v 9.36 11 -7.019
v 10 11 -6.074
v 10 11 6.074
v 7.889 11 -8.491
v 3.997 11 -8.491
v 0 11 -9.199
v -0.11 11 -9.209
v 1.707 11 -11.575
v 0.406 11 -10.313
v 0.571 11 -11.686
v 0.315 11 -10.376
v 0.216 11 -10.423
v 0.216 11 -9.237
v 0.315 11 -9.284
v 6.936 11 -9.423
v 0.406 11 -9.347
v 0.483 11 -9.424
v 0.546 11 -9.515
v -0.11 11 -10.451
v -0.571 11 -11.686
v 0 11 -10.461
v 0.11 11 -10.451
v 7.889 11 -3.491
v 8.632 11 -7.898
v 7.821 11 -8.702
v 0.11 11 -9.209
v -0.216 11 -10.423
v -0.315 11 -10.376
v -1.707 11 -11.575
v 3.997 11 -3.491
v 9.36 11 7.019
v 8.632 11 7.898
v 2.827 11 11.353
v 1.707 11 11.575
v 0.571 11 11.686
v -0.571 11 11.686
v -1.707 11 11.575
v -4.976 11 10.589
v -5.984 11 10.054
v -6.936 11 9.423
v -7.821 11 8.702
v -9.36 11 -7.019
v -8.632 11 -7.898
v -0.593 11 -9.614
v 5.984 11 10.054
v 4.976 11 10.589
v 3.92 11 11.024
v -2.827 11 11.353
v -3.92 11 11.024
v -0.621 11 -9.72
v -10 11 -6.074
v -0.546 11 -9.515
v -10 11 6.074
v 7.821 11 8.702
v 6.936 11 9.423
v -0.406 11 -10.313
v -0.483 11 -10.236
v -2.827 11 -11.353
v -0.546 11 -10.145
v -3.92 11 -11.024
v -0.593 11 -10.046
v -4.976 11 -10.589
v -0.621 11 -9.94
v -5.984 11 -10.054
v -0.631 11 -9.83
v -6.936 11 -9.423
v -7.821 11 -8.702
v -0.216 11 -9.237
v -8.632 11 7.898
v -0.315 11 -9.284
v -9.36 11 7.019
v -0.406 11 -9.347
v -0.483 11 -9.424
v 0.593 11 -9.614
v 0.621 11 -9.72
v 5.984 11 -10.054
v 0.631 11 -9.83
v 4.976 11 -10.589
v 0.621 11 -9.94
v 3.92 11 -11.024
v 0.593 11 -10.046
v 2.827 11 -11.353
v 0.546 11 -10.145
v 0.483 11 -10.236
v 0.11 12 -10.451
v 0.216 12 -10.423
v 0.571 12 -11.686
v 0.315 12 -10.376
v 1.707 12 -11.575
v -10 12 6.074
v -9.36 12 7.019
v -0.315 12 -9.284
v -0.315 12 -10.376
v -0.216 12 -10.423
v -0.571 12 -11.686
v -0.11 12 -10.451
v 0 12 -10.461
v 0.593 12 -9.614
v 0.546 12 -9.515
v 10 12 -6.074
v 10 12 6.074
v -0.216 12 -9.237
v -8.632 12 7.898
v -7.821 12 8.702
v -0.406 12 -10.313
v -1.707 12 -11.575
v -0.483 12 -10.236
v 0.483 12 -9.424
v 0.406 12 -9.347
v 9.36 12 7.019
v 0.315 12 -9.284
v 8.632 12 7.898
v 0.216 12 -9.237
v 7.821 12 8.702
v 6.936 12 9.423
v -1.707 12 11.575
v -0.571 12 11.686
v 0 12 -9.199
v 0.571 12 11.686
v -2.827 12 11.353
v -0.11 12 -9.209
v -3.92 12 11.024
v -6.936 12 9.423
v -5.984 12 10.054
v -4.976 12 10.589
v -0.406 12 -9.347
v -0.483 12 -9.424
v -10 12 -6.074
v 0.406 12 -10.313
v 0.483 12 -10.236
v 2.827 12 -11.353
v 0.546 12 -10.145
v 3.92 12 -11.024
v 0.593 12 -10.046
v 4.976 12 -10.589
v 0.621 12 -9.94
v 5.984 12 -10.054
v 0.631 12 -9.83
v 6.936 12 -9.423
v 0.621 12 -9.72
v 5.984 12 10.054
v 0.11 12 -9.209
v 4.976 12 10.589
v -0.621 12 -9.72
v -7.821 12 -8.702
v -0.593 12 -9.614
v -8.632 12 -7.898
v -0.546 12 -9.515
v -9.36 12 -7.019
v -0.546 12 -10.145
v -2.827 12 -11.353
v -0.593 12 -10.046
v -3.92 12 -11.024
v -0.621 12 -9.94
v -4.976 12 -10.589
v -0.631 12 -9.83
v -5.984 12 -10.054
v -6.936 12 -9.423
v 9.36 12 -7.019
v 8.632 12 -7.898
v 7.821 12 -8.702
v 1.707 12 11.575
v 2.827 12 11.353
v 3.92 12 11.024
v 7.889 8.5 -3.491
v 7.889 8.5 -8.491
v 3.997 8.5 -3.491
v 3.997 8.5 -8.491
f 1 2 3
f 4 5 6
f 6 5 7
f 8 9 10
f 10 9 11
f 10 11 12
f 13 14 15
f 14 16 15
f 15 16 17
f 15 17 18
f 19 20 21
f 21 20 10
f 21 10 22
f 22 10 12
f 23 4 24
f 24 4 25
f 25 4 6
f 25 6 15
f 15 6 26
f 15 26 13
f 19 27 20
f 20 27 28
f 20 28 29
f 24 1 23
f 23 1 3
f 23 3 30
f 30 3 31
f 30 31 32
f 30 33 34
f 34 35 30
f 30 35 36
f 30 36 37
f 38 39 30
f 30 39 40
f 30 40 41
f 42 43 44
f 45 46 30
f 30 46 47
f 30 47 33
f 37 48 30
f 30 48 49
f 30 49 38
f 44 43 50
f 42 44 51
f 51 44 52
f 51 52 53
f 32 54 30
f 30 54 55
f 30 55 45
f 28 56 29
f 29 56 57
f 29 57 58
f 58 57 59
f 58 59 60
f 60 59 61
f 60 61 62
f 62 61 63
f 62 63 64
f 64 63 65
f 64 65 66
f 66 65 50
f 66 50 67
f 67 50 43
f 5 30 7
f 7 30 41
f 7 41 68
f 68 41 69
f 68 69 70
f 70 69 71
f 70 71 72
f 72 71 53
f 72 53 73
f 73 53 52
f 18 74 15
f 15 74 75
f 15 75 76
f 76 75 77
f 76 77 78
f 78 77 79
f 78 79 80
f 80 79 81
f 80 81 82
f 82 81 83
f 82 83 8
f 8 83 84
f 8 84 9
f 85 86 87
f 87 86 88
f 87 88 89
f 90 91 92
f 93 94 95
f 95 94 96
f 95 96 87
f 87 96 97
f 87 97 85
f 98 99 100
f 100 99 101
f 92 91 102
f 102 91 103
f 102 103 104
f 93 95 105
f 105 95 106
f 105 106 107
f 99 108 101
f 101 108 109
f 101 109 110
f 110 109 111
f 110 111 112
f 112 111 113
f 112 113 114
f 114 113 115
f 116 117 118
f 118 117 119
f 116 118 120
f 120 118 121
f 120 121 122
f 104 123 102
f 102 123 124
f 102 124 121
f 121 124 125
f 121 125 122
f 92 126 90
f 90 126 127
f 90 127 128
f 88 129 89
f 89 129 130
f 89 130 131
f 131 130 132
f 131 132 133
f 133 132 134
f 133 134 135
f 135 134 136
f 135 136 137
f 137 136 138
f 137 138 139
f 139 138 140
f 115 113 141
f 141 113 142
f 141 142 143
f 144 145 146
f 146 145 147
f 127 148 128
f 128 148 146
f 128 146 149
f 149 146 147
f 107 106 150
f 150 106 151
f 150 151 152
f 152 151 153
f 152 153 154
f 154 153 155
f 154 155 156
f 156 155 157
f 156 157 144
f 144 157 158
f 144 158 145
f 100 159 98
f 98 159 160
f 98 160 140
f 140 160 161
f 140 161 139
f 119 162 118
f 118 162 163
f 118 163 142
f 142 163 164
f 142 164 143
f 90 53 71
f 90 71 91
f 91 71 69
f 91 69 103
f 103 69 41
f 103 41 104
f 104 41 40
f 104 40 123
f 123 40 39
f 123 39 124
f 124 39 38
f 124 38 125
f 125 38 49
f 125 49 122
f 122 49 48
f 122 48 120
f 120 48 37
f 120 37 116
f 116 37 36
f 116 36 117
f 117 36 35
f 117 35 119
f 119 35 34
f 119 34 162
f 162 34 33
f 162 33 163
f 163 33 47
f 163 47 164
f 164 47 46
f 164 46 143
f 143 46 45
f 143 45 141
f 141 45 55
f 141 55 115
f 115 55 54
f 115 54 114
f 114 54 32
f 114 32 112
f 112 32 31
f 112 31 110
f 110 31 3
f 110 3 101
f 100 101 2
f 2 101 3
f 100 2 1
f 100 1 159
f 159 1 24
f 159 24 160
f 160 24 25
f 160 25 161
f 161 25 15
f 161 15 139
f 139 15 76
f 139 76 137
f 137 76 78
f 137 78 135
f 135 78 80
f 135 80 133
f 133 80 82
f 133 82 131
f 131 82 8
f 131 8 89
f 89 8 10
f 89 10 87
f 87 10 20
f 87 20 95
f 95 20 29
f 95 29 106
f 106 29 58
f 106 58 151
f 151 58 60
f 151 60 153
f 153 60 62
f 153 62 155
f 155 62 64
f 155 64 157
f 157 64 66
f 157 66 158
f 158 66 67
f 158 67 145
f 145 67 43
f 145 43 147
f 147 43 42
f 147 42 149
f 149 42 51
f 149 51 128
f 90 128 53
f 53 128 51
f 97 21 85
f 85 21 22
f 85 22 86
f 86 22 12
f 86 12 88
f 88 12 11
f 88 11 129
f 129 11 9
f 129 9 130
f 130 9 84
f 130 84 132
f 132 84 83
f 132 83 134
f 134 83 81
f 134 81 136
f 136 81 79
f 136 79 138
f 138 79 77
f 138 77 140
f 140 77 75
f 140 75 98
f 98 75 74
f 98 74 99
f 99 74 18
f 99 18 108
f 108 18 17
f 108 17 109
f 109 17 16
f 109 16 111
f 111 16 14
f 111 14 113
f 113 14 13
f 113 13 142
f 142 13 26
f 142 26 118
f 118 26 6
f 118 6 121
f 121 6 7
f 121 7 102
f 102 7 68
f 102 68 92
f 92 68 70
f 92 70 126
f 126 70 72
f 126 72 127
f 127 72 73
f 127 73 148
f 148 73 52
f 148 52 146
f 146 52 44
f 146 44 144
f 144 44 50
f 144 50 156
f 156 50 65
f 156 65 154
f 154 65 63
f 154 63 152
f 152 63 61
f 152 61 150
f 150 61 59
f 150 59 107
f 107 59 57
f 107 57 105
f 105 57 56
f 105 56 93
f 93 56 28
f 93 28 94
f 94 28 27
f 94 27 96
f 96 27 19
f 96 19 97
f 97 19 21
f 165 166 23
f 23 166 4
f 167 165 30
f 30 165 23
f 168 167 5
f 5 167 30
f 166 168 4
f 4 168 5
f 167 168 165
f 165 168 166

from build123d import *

# Parameters (mm, degrees)
SKETCH_2_R          = 12
SKETCH_1_R          = 12.5
CUT_EXTRUDE_1_DEPTH = 12.0000001
SKETCH_5_W          = 13
SKETCH_5_H          = 6
CUT_EXTRUDE_2_DEPTH = 5
SKETCH_6_W          = 2.476692414
SKETCH_6_H          = 6.83521307
CUT_EXTRUDE_3_DEPTH = 20
CUT_EXTRUDE_4_DEPTH = 5
SKETCH_9_R          = 0.630926361
EXTRUDE_1_DEPTH     = 1
SKETCH_11_W         = 27.446294714
SKETCH_11_H         = 11.793449851
CUT_EXTRUDE_5_DEPTH = 21.75
SKETCH_10_W         = 3.891529141
SKETCH_10_H         = 5
EXTRUDE_2_DEPTH     = 2.5


with BuildPart() as part:
    # 草图2 → 放样1 section 0
    with BuildSketch(Plane(origin=(0, 11, 0), x_dir=(1, 0, 0), z_dir=(0, 1, 0))):
        Circle(SKETCH_2_R)
    # 草图1 → 放样1 section 1
    with BuildSketch(Plane(origin=(0, 0, 0), x_dir=(1, 0, 0), z_dir=(0, 1, 0))):
        Circle(SKETCH_1_R)
    loft()

    # 草图4 → 切除-拉伸1 (cut, through all)
    with BuildSketch(Plane(origin=(0, 0, 0), x_dir=(1, 0, 0), z_dir=(0, 1, 0))):
        with BuildLine():
            Line((-1.352272566, -2.5), (-1.352272566, -2.102702762))
            ThreePointArc((-1.352272566, -2.102702762), (0.025010963, 2.499874887), (1.309931483, -2.12933781))
            Line((1.309931483, -2.12933781), (1.309931483, -2.5))
            Line((1.309931483, -2.5), (8, -2.5))
            Line((8, -2.5), (8, -7.5))
            Line((8, -7.5), (-8, -7.5))
            Line((-8, -7.5), (-8, -2.5))
            Line((-8, -2.5), (-1.352272566, -2.5))
        make_face()
    extrude(amount=CUT_EXTRUDE_1_DEPTH, mode=Mode.SUBTRACT)

    # 草图5 → 切除-拉伸2 (cut)
    with BuildSketch(Plane(origin=(0, 11, 0), x_dir=(1, 0, 0), z_dir=(0, 1, 0))):
        with Locations((0, 5.991032562)):
            Rectangle(SKETCH_5_W, SKETCH_5_H)
        with BuildLine():
            Line((7.947410488, 8.991032562), (6.5, 8.991032562))
            Line((6.5, 8.991032562), (6.5, 2.991032562))
            Line((6.5, 2.991032562), (11.621261731, 2.991032562))
            ThreePointArc((11.621261731, 2.991032562), (10.233925596, 6.266320045), (7.947410488, 8.991032562))
        make_face()
        with BuildLine():
            Line((15.348611284, 8.991032562), (7.947410488, 8.991032562))
            ThreePointArc((7.947410488, 8.991032562), (10.233925596, 6.266320045), (11.621261731, 2.991032562))
            Line((11.621261731, 2.991032562), (15.348611284, 2.991032562))
            Line((15.348611284, 2.991032562), (15.348611284, 8.991032562))
        make_face()
    extrude(amount=-CUT_EXTRUDE_2_DEPTH, mode=Mode.SUBTRACT)

    # 草图6 → 切除-拉伸3 (cut, symmetric)
    with BuildSketch(Plane(origin=(0, 0, 0), x_dir=(0, 0, -1), z_dir=(1, 0, 0))):
        with Locations((0, 8.790545757)):
            Rectangle(SKETCH_6_W, SKETCH_6_H)
    extrude(amount=CUT_EXTRUDE_3_DEPTH, both=True, mode=Mode.SUBTRACT)

    # 草图7 → 切除-拉伸4 (cut)
    with BuildSketch(Plane(origin=(0, 11, 0), x_dir=(1, 0, 0), z_dir=(0, 1, 0))):
        Polygon((-5.998196858, 2.991032562), (-5.998196858, -3.96939498), (-8, -3.96939498), (-9.46939498, -2.5), (-9.46939498, 3.910589128), (-7.645587141, 5.734396966), (-6.5, 5.734396966), align=None)
    extrude(amount=-CUT_EXTRUDE_4_DEPTH, mode=Mode.SUBTRACT)

    # 草图9 → 凸台-拉伸1 (add)
    with BuildSketch(Plane(origin=(0, 11, 0), x_dir=(1, 0, 0), z_dir=(0, 1, 0))):
        with BuildLine():
            Line((-10, 6.073713856), (-10, -6.073713856))
            ThreePointArc((-10, -6.073713856), (0, -11.7), (10, -6.073713856))
            Line((10, -6.073713856), (10, 6.073713856))
            ThreePointArc((10, 6.073713856), (0, 11.7), (-10, 6.073713856))
        make_face()
        with Locations((0, 9.829977892)):
            Circle(SKETCH_9_R, mode=Mode.SUBTRACT)
    extrude(amount=EXTRUDE_1_DEPTH)

    # 草图11 → 切除-拉伸5 (cut, symmetric)
    with BuildSketch(Plane(origin=(0, 0, 0), x_dir=(0, 0, -1), z_dir=(1, 0, 0))):
        with Locations((-0.090881771, 5.103275074)):
            Rectangle(SKETCH_11_W, SKETCH_11_H)
    extrude(amount=CUT_EXTRUDE_5_DEPTH, both=True, mode=Mode.SUBTRACT)

    # 草图10 → 凸台-拉伸2 (add)
    with BuildSketch(Plane.XZ.offset(-11)):
        with Locations((5.943222156, -5.991032562)):
            Rectangle(SKETCH_10_W, SKETCH_10_H)
    extrude(amount=EXTRUDE_2_DEPTH)


solid = part.part
